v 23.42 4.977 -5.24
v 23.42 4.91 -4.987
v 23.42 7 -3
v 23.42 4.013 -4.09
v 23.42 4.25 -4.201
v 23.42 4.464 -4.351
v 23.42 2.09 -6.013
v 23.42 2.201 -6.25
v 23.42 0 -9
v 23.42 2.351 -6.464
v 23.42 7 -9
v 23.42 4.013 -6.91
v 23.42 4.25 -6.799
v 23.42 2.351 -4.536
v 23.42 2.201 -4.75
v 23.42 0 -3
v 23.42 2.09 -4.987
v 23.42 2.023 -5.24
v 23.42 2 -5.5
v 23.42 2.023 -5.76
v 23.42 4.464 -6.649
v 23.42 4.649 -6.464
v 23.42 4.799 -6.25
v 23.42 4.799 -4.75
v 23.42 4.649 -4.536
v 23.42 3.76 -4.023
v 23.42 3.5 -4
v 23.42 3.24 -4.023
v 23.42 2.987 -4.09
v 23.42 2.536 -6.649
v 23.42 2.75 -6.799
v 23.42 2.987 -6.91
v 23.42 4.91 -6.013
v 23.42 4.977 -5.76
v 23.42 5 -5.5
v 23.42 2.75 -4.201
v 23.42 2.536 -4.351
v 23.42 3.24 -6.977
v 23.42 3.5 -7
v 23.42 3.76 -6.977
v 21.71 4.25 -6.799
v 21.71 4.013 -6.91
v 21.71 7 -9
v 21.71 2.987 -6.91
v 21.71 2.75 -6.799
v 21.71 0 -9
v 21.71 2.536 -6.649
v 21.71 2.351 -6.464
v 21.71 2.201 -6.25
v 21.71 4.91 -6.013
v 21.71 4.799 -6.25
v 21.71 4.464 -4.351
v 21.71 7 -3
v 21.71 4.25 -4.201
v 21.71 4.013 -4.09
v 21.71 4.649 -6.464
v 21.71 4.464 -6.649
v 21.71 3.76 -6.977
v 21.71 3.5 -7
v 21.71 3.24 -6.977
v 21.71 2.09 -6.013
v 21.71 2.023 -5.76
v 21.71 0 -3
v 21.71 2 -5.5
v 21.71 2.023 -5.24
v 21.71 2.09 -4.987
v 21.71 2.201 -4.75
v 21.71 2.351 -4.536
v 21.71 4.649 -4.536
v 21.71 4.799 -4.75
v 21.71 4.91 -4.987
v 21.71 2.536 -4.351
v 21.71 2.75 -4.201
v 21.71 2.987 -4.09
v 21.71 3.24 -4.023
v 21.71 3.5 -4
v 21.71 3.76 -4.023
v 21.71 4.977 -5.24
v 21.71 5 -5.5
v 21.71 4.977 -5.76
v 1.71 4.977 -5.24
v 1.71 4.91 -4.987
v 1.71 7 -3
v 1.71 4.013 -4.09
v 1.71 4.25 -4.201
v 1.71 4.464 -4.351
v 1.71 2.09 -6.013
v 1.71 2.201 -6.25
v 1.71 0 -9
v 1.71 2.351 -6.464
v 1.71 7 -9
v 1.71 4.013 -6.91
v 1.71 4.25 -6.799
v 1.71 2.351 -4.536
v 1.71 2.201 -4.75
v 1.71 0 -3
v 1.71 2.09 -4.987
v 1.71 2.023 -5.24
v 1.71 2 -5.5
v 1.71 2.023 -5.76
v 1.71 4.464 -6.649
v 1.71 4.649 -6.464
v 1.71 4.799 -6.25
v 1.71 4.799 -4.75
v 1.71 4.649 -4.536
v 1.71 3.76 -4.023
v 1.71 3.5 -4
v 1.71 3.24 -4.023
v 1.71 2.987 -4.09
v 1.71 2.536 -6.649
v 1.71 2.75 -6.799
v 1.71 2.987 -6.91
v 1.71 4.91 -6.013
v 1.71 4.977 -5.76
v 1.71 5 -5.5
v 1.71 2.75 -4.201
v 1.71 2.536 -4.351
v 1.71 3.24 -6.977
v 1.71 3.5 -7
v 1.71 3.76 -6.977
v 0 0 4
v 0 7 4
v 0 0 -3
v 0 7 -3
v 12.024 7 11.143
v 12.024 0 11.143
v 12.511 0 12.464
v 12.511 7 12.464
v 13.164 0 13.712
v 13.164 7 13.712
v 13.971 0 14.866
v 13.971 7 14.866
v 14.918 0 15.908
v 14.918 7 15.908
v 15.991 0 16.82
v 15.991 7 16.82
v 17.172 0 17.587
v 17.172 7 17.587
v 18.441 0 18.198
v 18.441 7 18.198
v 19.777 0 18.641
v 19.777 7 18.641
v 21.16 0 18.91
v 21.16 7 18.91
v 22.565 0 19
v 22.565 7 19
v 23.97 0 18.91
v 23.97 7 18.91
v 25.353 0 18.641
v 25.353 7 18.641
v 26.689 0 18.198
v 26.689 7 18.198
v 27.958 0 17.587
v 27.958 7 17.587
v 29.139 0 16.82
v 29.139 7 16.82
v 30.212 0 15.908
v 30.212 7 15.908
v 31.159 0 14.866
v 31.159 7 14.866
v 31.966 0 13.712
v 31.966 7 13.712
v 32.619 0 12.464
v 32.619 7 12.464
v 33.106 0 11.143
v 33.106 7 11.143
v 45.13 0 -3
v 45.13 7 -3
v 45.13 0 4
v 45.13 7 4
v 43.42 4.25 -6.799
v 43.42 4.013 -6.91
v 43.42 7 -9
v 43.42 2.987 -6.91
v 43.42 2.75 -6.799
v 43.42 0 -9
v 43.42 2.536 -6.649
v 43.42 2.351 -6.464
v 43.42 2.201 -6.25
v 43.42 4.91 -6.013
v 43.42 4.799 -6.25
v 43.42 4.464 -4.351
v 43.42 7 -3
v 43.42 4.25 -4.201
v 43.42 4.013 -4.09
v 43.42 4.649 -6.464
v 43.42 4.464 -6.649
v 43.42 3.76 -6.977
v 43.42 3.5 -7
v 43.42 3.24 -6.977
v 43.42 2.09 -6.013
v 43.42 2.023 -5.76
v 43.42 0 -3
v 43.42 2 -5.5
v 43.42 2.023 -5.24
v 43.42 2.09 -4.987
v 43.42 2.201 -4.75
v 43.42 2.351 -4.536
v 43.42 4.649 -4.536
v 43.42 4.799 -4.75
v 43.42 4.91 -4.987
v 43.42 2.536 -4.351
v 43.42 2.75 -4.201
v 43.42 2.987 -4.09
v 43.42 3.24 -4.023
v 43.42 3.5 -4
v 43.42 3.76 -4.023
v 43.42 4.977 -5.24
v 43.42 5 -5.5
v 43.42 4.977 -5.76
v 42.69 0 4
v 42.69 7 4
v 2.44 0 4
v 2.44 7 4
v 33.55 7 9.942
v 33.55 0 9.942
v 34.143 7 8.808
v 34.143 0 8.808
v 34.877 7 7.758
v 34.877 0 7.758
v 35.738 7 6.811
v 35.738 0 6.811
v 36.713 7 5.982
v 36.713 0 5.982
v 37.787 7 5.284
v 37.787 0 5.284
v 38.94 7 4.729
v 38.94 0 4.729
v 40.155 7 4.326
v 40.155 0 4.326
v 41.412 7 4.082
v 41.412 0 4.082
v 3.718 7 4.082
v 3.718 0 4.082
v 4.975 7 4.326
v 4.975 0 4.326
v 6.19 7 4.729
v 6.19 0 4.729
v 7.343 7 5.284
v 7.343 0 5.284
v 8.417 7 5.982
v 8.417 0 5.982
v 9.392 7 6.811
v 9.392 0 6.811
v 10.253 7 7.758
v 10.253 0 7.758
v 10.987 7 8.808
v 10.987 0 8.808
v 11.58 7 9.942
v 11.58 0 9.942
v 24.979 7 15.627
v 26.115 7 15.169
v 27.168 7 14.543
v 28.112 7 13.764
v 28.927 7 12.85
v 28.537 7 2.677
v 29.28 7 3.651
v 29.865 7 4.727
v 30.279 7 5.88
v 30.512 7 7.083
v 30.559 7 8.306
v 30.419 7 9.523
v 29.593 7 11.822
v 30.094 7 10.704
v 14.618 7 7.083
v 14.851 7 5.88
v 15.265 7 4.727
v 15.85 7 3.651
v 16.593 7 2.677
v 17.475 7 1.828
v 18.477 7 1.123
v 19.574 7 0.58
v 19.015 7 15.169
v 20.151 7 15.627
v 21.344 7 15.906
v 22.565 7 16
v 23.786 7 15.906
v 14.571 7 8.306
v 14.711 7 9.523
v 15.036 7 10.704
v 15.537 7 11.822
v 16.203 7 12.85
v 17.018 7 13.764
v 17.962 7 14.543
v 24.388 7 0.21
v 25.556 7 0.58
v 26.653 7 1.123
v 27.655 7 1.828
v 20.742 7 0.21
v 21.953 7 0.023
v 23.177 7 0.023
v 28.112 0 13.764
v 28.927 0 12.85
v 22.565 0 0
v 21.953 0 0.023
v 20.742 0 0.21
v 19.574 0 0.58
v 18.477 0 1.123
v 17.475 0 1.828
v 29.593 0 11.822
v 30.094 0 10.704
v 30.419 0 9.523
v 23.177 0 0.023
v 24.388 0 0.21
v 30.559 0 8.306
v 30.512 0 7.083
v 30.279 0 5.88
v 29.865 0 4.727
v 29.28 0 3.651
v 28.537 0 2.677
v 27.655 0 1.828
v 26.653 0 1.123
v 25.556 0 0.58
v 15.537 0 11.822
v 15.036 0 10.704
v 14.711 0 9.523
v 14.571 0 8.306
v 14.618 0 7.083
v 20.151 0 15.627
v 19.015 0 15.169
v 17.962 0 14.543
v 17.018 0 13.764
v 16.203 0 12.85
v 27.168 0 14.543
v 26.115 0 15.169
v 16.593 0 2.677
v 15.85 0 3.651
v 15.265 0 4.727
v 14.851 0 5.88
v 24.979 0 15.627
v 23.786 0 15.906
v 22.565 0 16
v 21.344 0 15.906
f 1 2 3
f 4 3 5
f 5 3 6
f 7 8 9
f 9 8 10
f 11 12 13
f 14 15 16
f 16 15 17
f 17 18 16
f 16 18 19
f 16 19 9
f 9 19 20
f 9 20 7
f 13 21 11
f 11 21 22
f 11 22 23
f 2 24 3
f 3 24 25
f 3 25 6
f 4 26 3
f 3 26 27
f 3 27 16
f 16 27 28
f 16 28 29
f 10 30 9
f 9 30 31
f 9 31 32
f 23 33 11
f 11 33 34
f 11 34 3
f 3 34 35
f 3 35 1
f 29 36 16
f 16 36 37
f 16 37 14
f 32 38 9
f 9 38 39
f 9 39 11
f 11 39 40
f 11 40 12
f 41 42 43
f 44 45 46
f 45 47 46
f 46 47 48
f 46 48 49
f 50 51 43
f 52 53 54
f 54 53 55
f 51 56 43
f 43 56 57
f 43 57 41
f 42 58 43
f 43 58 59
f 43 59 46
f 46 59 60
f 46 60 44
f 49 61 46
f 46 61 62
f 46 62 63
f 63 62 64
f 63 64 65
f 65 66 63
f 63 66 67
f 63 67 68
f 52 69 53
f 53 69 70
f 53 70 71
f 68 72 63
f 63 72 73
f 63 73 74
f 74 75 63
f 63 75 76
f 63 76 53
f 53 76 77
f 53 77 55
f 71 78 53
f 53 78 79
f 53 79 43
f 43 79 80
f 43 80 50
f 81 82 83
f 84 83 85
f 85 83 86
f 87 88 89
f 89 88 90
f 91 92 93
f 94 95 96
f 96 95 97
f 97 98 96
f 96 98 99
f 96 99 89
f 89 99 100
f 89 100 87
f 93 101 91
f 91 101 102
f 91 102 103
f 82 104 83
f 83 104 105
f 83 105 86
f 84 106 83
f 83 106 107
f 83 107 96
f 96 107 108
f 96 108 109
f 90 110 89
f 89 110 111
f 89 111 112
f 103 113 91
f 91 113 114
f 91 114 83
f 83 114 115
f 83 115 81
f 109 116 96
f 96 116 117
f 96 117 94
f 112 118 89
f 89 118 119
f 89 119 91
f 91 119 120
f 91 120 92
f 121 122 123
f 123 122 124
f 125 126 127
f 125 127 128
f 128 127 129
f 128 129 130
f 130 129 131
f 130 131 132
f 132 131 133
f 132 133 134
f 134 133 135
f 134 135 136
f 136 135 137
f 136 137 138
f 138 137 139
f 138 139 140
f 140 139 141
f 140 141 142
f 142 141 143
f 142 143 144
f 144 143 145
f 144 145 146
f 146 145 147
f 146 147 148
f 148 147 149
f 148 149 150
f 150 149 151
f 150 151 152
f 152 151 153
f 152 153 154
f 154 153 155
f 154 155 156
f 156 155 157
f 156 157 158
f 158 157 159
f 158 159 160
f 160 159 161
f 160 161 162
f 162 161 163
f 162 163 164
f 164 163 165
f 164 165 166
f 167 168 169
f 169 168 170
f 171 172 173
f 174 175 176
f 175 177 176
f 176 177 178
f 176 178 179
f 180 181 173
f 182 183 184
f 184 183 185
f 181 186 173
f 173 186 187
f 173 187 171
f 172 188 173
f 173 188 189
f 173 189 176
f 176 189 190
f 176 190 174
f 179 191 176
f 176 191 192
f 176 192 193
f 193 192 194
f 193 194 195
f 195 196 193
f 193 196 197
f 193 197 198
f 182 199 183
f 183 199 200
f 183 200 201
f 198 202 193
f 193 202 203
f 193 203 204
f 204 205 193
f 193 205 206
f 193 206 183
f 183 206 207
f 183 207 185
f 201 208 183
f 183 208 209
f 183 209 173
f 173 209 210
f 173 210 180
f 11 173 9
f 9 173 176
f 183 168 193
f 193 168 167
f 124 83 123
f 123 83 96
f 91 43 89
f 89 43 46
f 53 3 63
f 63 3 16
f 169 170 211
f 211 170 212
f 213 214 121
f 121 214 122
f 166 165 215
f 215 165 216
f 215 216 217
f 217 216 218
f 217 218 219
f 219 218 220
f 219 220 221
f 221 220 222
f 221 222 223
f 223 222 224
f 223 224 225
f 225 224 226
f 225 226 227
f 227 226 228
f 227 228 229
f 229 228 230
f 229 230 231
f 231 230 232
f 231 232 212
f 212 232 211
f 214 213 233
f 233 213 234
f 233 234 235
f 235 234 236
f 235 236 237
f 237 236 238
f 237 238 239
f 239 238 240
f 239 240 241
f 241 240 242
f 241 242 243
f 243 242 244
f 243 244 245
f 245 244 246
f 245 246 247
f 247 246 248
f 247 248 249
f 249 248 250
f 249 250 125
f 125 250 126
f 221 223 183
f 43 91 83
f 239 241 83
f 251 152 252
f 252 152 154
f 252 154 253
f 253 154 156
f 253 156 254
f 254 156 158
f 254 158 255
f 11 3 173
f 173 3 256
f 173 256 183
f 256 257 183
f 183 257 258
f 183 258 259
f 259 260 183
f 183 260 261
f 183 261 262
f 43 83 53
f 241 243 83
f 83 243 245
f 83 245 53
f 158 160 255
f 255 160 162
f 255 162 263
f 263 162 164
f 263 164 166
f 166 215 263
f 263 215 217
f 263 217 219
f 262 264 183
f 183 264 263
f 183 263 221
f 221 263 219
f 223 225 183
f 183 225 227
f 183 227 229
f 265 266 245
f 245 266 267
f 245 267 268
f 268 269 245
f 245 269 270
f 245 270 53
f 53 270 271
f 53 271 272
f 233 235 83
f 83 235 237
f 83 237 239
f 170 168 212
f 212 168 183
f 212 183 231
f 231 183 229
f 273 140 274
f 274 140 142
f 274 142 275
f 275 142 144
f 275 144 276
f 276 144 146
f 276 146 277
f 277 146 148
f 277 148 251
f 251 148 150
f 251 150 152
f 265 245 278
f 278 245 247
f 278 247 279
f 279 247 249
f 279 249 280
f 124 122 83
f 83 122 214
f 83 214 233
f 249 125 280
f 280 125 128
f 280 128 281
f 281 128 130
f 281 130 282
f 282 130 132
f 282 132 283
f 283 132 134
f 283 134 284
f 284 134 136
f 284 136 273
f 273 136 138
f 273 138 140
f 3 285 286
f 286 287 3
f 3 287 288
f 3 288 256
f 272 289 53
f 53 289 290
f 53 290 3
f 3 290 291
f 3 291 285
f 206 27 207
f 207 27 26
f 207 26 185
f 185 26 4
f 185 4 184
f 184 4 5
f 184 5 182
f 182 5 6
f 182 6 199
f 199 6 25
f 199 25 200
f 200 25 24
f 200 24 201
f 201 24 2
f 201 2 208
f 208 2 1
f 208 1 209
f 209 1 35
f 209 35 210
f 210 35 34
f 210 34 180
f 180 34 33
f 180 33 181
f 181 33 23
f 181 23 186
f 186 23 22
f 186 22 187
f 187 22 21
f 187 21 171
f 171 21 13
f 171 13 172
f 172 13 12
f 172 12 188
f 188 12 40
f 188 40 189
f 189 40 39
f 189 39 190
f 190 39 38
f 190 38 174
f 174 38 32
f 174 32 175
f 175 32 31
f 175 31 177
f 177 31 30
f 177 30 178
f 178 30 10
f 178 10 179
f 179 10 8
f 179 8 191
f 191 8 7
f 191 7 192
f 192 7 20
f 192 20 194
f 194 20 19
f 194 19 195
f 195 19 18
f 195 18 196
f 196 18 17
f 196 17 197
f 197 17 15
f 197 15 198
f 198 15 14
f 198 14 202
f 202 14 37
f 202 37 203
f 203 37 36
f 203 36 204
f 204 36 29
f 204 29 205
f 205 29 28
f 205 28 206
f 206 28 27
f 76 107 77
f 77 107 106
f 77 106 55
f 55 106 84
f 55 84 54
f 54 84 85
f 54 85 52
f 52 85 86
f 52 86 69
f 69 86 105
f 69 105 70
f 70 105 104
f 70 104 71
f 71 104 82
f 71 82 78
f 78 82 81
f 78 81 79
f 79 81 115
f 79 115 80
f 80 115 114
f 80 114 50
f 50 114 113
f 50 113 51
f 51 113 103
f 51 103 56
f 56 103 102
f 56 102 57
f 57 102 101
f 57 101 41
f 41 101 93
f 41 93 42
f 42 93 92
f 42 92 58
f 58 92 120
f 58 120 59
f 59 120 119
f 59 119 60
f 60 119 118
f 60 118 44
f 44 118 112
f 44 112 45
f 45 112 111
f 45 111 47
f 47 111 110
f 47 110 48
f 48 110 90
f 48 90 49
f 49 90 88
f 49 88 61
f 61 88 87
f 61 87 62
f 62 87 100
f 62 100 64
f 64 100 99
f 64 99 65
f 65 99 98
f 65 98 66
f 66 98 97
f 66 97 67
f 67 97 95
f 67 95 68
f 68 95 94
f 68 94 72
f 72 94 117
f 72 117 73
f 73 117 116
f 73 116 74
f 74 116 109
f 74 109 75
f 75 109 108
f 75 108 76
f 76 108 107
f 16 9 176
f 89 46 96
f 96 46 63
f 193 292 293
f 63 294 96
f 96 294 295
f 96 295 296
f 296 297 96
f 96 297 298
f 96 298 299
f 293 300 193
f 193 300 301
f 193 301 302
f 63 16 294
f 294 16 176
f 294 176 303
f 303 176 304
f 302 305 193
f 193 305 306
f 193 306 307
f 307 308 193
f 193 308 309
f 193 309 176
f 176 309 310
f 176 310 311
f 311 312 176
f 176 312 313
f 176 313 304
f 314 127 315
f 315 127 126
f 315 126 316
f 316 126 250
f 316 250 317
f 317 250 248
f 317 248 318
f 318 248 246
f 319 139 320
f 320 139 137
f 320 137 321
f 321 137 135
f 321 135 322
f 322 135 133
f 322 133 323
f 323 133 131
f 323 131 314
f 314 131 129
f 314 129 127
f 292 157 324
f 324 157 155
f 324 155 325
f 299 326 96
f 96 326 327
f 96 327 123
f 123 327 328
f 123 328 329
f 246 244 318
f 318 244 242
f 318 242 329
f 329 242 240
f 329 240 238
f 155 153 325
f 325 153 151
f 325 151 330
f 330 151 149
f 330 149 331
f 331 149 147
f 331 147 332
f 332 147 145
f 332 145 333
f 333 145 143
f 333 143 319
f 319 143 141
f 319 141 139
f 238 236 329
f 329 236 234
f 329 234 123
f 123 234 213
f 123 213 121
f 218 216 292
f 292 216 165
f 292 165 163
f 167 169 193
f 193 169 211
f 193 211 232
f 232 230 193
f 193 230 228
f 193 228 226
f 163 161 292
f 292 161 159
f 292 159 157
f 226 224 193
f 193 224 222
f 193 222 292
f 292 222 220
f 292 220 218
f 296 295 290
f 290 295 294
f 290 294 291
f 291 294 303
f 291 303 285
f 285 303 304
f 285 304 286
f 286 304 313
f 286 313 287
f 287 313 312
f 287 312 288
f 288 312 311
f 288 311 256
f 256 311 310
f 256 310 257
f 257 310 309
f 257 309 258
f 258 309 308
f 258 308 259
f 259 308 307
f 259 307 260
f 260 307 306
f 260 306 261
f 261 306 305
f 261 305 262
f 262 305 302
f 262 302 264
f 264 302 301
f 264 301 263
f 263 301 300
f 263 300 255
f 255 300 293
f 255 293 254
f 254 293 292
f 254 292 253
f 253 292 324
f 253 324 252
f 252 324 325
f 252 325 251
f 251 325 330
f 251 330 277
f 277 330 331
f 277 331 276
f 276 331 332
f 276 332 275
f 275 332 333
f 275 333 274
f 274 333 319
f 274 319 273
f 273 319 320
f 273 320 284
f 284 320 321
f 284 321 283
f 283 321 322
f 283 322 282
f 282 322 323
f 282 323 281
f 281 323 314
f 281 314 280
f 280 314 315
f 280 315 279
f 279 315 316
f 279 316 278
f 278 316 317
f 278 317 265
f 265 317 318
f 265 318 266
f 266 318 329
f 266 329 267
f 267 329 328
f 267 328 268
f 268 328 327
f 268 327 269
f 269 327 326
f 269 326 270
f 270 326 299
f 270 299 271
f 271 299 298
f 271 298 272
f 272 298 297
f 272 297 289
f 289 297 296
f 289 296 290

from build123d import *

# Parameters (mm, degrees)
SKETCH1_R            = 11
SKETCH1_R_2          = 8
SKETCH1_W            = 45.13
SKETCH1_H            = 7
BOSS_EXTRUDE1_DEPTH  = 10
SKETCH2_W            = 1.71
SKETCH2_H            = 4
CUT_EXTRUDE1_DEPTH   = 10
SKETCH3_W            = 20
SKETCH3_H            = 10
BOSS_EXTRUDE2_DEPTH  = 3
CUT_EXTRUDE2_START   = -3
CUT_EXTRUDE2_DEPTH   = 3
SKETCH6_W            = 20
SKETCH6_H            = 7
BOSS_EXTRUDE3_DEPTH  = 2
SKETCH7_R            = 1.5
CUT_EXTRUDE5_DEPTH   = 44
SKETCH9_W            = 1.71
SKETCH9_H            = 7
BOSS_EXTRUDE4_DEPTH  = 3
CUT_EXTRUDE6_START   = -1
SKETCH11_R           = 8
CUT_EXTRUDE6_DEPTH   = 1
BOSS_EXTRUDE6_DEPTH  = 1
BOSS_EXTRUDE7_START  = 6
SKETCH13_R           = 8
BOSS_EXTRUDE7_DEPTH  = 6
SKETCH14_R           = 8
BOSS_EXTRUDE8_DEPTH  = 40
SKETCH15_R           = 7.5
BOSS_EXTRUDE9_DEPTH  = 30
BOSS_EXTRUDE10_START = 6.5
BOSS_EXTRUDE10_DEPTH = 6.5
SKETCH17_R           = 15.773418916
SKETCH17_R_2         = 7
CUT_EXTRUDE7_DEPTH   = 30
SKETCH18_R           = 7.1
BOSS_EXTRUDE11_DEPTH = 30
SKETCH19_R           = 7.2
BOSS_EXTRUDE12_DEPTH = 30
SKETCH20_R           = 12.810748173
SKETCH20_R_2         = 7.15
CUT_EXTRUDE8_DEPTH   = 30
SKETCH21_R           = 7.15
CUT_EXTRUDE9_DEPTH   = 10
SKETCH22_R           = 8
SKETCH22_R_2         = 7.15
CUT_EXTRUDE10_DEPTH  = 10
SKETCH25_W           = 1.71
SKETCH25_H           = 3
SKETCH25_W_2         = 20
CUT_EXTRUDE13_DEPTH  = 21
BOSS_EXTRUDE13_DEPTH = 20
BOSS_EXTRUDE14_START = -20
BOSS_EXTRUDE14_DEPTH = 20
SKETCH28_R           = 1.5
CUT_EXTRUDE14_DEPTH  = 50
SKETCH29_W           = 45.13
SKETCH29_H           = 13.5
BOSS_EXTRUDE15_DEPTH = 4
FILLET1_R            = 10
FILLET2_R            = 2
CUT_EXTRUDE15_START  = 59
CUT_EXTRUDE15_DEPTH  = 59
CUT_EXTRUDE16_DEPTH  = 6.5
SKETCH33_R           = 8
CUT_EXTRUDE17_DEPTH  = 19.5


with BuildPart() as part:
    # Sketch1 → Boss-Extrude1 (new body)
    # profile 1 of 2: a face of its own
    with BuildSketch(Plane(origin=(0, 0, 0), x_dir=(1, 0, 0), z_dir=(0, 1, 0))):
        with Locations((22.565, -8)):
            Circle(SKETCH1_R)
        with Locations(Location((22.565, -8, 0), (0, 0, 270))):
            Circle(SKETCH1_R_2, mode=Mode.SUBTRACT)
    # profile 2 of 2: a face of its own
    with BuildSketch(Plane(origin=(0, 0, 0), x_dir=(1, 0, 0), z_dir=(0, 1, 0))):
        with Locations((22.565, 3.5)):
            Rectangle(SKETCH1_W, SKETCH1_H)
    extrude(amount=BOSS_EXTRUDE1_DEPTH)

    # Sketch2 → Cut-Extrude1 (cut)
    with BuildSketch(Plane(origin=(0, 10, 0), x_dir=(1, 0, 0), z_dir=(0, 1, 0))):
        with Locations((0.855, 5)):
            Rectangle(SKETCH2_W, SKETCH2_H)
        with Locations((22.565, 5)):
            Rectangle(SKETCH2_W, SKETCH2_H)
        with Locations((44.275, 5)):
            Rectangle(SKETCH2_W, SKETCH2_H)
    extrude(amount=-CUT_EXTRUDE1_DEPTH, mode=Mode.SUBTRACT)

    # Sketch3 → Boss-Extrude2 (add)
    with BuildSketch(Plane(origin=(0, 0, -7), x_dir=(-1, 0, 0), z_dir=(0, 0, -1))):
        with Locations((-33.42, 5)):
            Rectangle(SKETCH3_W, SKETCH3_H)
        with Locations((-11.71, 5)):
            Rectangle(SKETCH3_W, SKETCH3_H)
    extrude(amount=BOSS_EXTRUDE2_DEPTH)

    # Sketch4 → Cut-Extrude2 (cut)
    with BuildSketch(Plane(origin=(0, 10, 0), x_dir=(1, 0, 0), z_dir=(0, 1, 0)).offset(CUT_EXTRUDE2_START)):
        with BuildLine():
            Line((21.71, 3), (21.71, 10))
            Line((21.71, 10), (1.71, 10))
            Line((1.71, 10), (1.71, 3))
            Line((1.71, 3), (0, 3))
            Line((0, 3), (0, 0))
            Line((0, 0), (15.015165565, 0))
            ThreePointArc((15.015165565, 0), (22.565, -19), (30.114834435, 0))
            Line((30.114834435, 0), (45.13, 0))
            Line((45.13, 0), (45.13, 3))
            Line((45.13, 3), (43.42, 3))
            Line((43.42, 3), (43.42, 10))
            Line((43.42, 10), (23.42, 10))
            Line((23.42, 10), (23.42, 3))
            Line((23.42, 3), (21.71, 3))
        make_face()
    extrude(amount=CUT_EXTRUDE2_DEPTH, mode=Mode.SUBTRACT)

    # Sketch6 → Boss-Extrude3 (add)
    with BuildSketch(Plane(origin=(0, 0, -10), x_dir=(-1, 0, 0), z_dir=(0, 0, -1))):
        with Locations((-33.42, 3.5)):
            Rectangle(SKETCH6_W, SKETCH6_H)
        with Locations((-11.71, 3.5)):
            Rectangle(SKETCH6_W, SKETCH6_H)
    extrude(amount=BOSS_EXTRUDE3_DEPTH)

    # Sketch7 → Cut-Extrude5 (cut)
    with BuildSketch(Plane.ZY.offset(-1.71)):
        with Locations((-8.5, 3.5)):
            Circle(SKETCH7_R)
    extrude(amount=-CUT_EXTRUDE5_DEPTH, mode=Mode.SUBTRACT)

    # Sketch9 → Boss-Extrude4 (add)
    with BuildSketch(Plane(origin=(0, 0, -3), x_dir=(-1, 0, 0), z_dir=(0, 0, -1))):
        with Locations((-22.565, 3.5)):
            Rectangle(SKETCH9_W, SKETCH9_H)
        with Locations((-0.855, 3.5)):
            Rectangle(SKETCH9_W, SKETCH9_H)
        with Locations((-44.275, 3.5)):
            Rectangle(SKETCH9_W, SKETCH9_H)
    extrude(amount=BOSS_EXTRUDE4_DEPTH)

    # Sketch11 → Cut-Extrude6 (cut)
    with BuildSketch(Plane(origin=(0, 7, 0), x_dir=(1, 0, 0), z_dir=(0, 1, 0)).offset(CUT_EXTRUDE6_START)):
        with BuildLine():
            Line((45.13, 6), (43.42, 6))
            Line((43.42, 6), (43.42, 12))
            Line((43.42, 12), (23.42, 12))
            Line((23.42, 12), (23.42, 6))
            Line((23.42, 6), (21.71, 6))
            Line((21.71, 6), (21.71, 12))
            Line((21.71, 12), (1.71, 12))
            Line((1.71, 12), (1.71, 6))
            Line((1.71, 6), (0, 6))
            Line((0, 6), (0, 0))
            Line((0, 0), (15.015165565, 0))
            ThreePointArc((15.015165565, 0), (22.565, -19), (30.114834435, 0))
            Line((30.114834435, 0), (45.13, 0))
            Line((45.13, 0), (45.13, 6))
        make_face()
        with Locations(Location((22.565, -8, 0), (0, 0, 270))):
            Circle(SKETCH11_R, mode=Mode.SUBTRACT)
    extrude(amount=CUT_EXTRUDE6_DEPTH, mode=Mode.SUBTRACT)

    # Sketch12 → Boss-Extrude6 (add)
    with BuildSketch(Plane(origin=(0, 6, 0), x_dir=(1, 0, 0), z_dir=(0, 1, 0))):
        with BuildLine():
            Line((45.13, 0), (45.13, 6))
            Line((45.13, 6), (43.42, 6))
            Line((43.42, 6), (43.42, 12))
            Line((43.42, 12), (23.42, 12))
            Line((23.42, 12), (23.42, 6))
            Line((23.42, 6), (21.71, 6))
            Line((21.71, 6), (21.71, 12))
            Line((21.71, 12), (1.71, 12))
            Line((1.71, 12), (1.71, 6))
            Line((1.71, 6), (0, 6))
            Line((0, 6), (0, 0))
            Line((0, 0), (15.015165565, 0))
            ThreePointArc((15.015165565, 0), (22.565, -19), (30.114834435, 0))
            Line((30.114834435, 0), (45.13, 0))
        make_face()
    extrude(amount=BOSS_EXTRUDE6_DEPTH)

    # Sketch13 → Boss-Extrude7 (add)
    with BuildSketch(Plane.XZ.offset(-6).offset(BOSS_EXTRUDE7_START)):
        with Locations((22.565, 8)):
            Circle(SKETCH13_R)
    extrude(amount=-BOSS_EXTRUDE7_DEPTH)

    # Sketch14 → Boss-Extrude8 (add)
    with BuildSketch(Plane.XZ):
        with Locations(Location((22.565, 8, 0), (0, 0, 90))):
            Circle(SKETCH14_R)
    extrude(amount=BOSS_EXTRUDE8_DEPTH)

    # Sketch15 → Boss-Extrude9 (add)
    with BuildSketch(Plane.XZ.offset(40)):
        with Locations(Location((22.565, 8, 0), (0, 0, 270))):
            Circle(SKETCH15_R)
    extrude(amount=BOSS_EXTRUDE9_DEPTH)

    # Sketch16 → Boss-Extrude10 (add)
    with BuildSketch(Plane.XZ.offset(BOSS_EXTRUDE10_START)):
        with BuildLine():
            Line((43.42, -12), (43.42, -6))
            Line((43.42, -6), (45.13, -6))
            Line((45.13, -6), (45.13, 0))
            Line((45.13, 0), (30.114834435, 0))
            ThreePointArc((30.114834435, 0), (22.565, 19), (15.015165565, 0))
            Line((15.015165565, 0), (0, 0))
            Line((0, 0), (0, -6))
            Line((0, -6), (1.71, -6))
            Line((1.71, -6), (1.71, -12))
            Line((1.71, -12), (21.71, -12))
            Line((21.71, -12), (21.71, -6))
            Line((21.71, -6), (23.42, -6))
            Line((23.42, -6), (23.42, -12))
            Line((23.42, -12), (43.42, -12))
        make_face()
    extrude(amount=-BOSS_EXTRUDE10_DEPTH)

    # Sketch17 → Cut-Extrude7 (cut)
    with BuildSketch(Plane.XZ.offset(70)):
        with Locations((22.565, 8)):
            Circle(SKETCH17_R)
        with Locations(Location((22.565, 8, 0), (0, 0, 270))):
            Circle(SKETCH17_R_2, mode=Mode.SUBTRACT)
    extrude(amount=-CUT_EXTRUDE7_DEPTH, mode=Mode.SUBTRACT)

    # Sketch18 → Boss-Extrude11 (add)
    with BuildSketch(Plane.XZ.offset(70)):
        with Locations(Location((22.565, 8, 0), (0, 0, 270))):
            Circle(SKETCH18_R)
    extrude(amount=-BOSS_EXTRUDE11_DEPTH)

    # Sketch19 → Boss-Extrude12 (add)
    with BuildSketch(Plane.XZ.offset(70)):
        with Locations(Location((22.565, 8, 0), (0, 0, 270))):
            Circle(SKETCH19_R)
    extrude(amount=-BOSS_EXTRUDE12_DEPTH)

    # Sketch20 → Cut-Extrude8 (cut)
    with BuildSketch(Plane.XZ.offset(70)):
        with Locations((22.565, 8)):
            Circle(SKETCH20_R)
        with Locations(Location((22.565, 8, 0), (0, 0, 270))):
            Circle(SKETCH20_R_2, mode=Mode.SUBTRACT)
    extrude(amount=-CUT_EXTRUDE8_DEPTH, mode=Mode.SUBTRACT)

    # Sketch21 → Cut-Extrude9 (cut)
    with BuildSketch(Plane.XZ.offset(70)):
        with Locations(Location((22.565, 8, 0), (0, 0, 270))):
            Circle(SKETCH21_R)
    extrude(amount=-CUT_EXTRUDE9_DEPTH, mode=Mode.SUBTRACT)

    # Sketch22 → Cut-Extrude10 (cut)
    with BuildSketch(Plane.XZ.offset(40)):
        with Locations(Location((22.565, 8, 0), (0, 0, 270))):
            Circle(SKETCH22_R)
        with Locations(Location((22.565, 8, 0), (0, 0, 270))):
            Circle(SKETCH22_R_2, mode=Mode.SUBTRACT)
    extrude(amount=-CUT_EXTRUDE10_DEPTH, mode=Mode.SUBTRACT)

    # Sketch25 → Cut-Extrude13 (cut)
    with BuildSketch(Plane(origin=(0, 7, 0), x_dir=(1, 0, 0), z_dir=(0, 1, 0))):
        with Locations((0.855, 4.5)):
            Rectangle(SKETCH25_W, SKETCH25_H)
        with Locations((11.71, 10.5)):
            Rectangle(SKETCH25_W_2, SKETCH25_H)
        with Locations((33.42, 10.5)):
            Rectangle(SKETCH25_W_2, SKETCH25_H)
        with Locations((22.565, 4.5)):
            Rectangle(SKETCH25_W, SKETCH25_H)
        with Locations((44.275, 4.5)):
            Rectangle(SKETCH25_W, SKETCH25_H)
    extrude(amount=-CUT_EXTRUDE13_DEPTH, mode=Mode.SUBTRACT)

    # Sketch26 → Boss-Extrude13 (add)
    with BuildSketch(Plane.ZY.offset(-1.71)):
        with BuildLine():
            ThreePointArc((-7, 3.5), (-7.633974596, 4.724744871), (-9, 4.914213562))
            Line((-9, 4.914213562), (-9, 2.085786438))
            ThreePointArc((-9, 2.085786438), (-7.633974596, 2.275255129), (-7, 3.5))
        make_face()
    extrude(amount=-BOSS_EXTRUDE13_DEPTH)

    # Sketch27 → Boss-Extrude14 (add)
    with BuildSketch(Plane(origin=(43.42, 0, 0), x_dir=(0, 0, -1), z_dir=(1, 0, 0)).offset(BOSS_EXTRUDE14_START)):
        with BuildLine():
            Line((9, 2.085786438), (9, 4.914213562))
            ThreePointArc((9, 4.914213562), (7, 3.5), (9, 2.085786438))
        make_face()
    extrude(amount=BOSS_EXTRUDE14_DEPTH)

    # Sketch28 → Cut-Extrude14 (cut)
    with BuildSketch(Plane.ZY.offset(-1.71)):
        with Locations((-5.5, 3.5)):
            Circle(SKETCH28_R)
    extrude(amount=-CUT_EXTRUDE14_DEPTH, mode=Mode.SUBTRACT)

    # Sketch29 → Boss-Extrude15 (add)
    with BuildSketch(Plane.XY):
        with Locations((22.565, 0.25)):
            Rectangle(SKETCH29_W, SKETCH29_H)
    extrude(amount=BOSS_EXTRUDE15_DEPTH)

    # Fillet1
    fillet1_edges = [part.edges().sort_by_distance(p)[0] for p in [
        (32.811950766, 0.25, 4),
        (12.318049234, 0.25, 4),
    ]]
    fillet(fillet1_edges, radius=FILLET1_R)

    # Fillet2
    fillet2_edges = [part.edges().sort_by_distance(p)[0] for p in [
        (22.565, -6.5, 0),
    ]]
    fillet(fillet2_edges, radius=FILLET2_R)

    # Sketch30 → Cut-Extrude15 (cut)
    with BuildSketch(Plane.XZ.offset(6.5).offset(CUT_EXTRUDE15_START)):
        with BuildLine():
            Line((45.13, 4), (42.689611797, 4))
            ThreePointArc((42.689611797, 4), (36.713468751, 5.982162743), (33.106463322, 11.142857143))
            ThreePointArc((33.106463322, 11.142857143), (22.565, 19), (12.023536678, 11.142857143))
            ThreePointArc((12.023536678, 11.142857143), (8.416531249, 5.982162743), (2.440388203, 4))
            Line((2.440388203, 4), (0, 4))
            Line((0, 4), (0, -3))
            Line((0, -3), (1.71, -3))
            Line((1.71, -3), (1.71, -9))
            Line((1.71, -9), (21.71, -9))
            Line((21.71, -9), (21.71, -3))
            Line((21.71, -3), (23.42, -3))
            Line((23.42, -3), (23.42, -9))
            Line((23.42, -9), (43.42, -9))
            Line((43.42, -9), (43.42, -3))
            Line((43.42, -3), (45.13, -3))
            Line((45.13, -3), (45.13, 4))
        make_face()
    extrude(amount=-CUT_EXTRUDE15_DEPTH, mode=Mode.SUBTRACT)

    # Sketch32 → Cut-Extrude16 (cut)
    with BuildSketch(Plane.XZ.offset(6.5)):
        with BuildLine():
            Line((45.13, 4), (42.689611797, 4))
            ThreePointArc((42.689611797, 4), (36.713468751, 5.982162743), (33.106463322, 11.142857143))
            ThreePointArc((33.106463322, 11.142857143), (22.565, 19), (12.023536678, 11.142857143))
            ThreePointArc((12.023536678, 11.142857143), (8.416531249, 5.982162743), (2.440388203, 4))
            Line((2.440388203, 4), (0, 4))
            Line((0, 4), (0, -3))
            Line((0, -3), (1.71, -3))
            Line((1.71, -3), (1.71, -9))
            Line((1.71, -9), (21.71, -9))
            Line((21.71, -9), (21.71, -3))
            Line((21.71, -3), (23.42, -3))
            Line((23.42, -3), (23.42, -9))
            Line((23.42, -9), (43.42, -9))
            Line((43.42, -9), (43.42, -3))
            Line((43.42, -3), (45.13, -3))
            Line((45.13, -3), (45.13, 4))
        make_face()
    extrude(amount=-CUT_EXTRUDE16_DEPTH, mode=Mode.SUBTRACT)

    # Sketch33 → Cut-Extrude17 (cut)
    with BuildSketch(Plane(origin=(0, 7, 0), x_dir=(1, 0, 0), z_dir=(0, 1, 0))):
        with Locations(Location((22.565, -8, 0), (0, 0, 270))):
            Circle(SKETCH33_R)
    extrude(amount=-CUT_EXTRUDE17_DEPTH, mode=Mode.SUBTRACT)


solid = part.part
